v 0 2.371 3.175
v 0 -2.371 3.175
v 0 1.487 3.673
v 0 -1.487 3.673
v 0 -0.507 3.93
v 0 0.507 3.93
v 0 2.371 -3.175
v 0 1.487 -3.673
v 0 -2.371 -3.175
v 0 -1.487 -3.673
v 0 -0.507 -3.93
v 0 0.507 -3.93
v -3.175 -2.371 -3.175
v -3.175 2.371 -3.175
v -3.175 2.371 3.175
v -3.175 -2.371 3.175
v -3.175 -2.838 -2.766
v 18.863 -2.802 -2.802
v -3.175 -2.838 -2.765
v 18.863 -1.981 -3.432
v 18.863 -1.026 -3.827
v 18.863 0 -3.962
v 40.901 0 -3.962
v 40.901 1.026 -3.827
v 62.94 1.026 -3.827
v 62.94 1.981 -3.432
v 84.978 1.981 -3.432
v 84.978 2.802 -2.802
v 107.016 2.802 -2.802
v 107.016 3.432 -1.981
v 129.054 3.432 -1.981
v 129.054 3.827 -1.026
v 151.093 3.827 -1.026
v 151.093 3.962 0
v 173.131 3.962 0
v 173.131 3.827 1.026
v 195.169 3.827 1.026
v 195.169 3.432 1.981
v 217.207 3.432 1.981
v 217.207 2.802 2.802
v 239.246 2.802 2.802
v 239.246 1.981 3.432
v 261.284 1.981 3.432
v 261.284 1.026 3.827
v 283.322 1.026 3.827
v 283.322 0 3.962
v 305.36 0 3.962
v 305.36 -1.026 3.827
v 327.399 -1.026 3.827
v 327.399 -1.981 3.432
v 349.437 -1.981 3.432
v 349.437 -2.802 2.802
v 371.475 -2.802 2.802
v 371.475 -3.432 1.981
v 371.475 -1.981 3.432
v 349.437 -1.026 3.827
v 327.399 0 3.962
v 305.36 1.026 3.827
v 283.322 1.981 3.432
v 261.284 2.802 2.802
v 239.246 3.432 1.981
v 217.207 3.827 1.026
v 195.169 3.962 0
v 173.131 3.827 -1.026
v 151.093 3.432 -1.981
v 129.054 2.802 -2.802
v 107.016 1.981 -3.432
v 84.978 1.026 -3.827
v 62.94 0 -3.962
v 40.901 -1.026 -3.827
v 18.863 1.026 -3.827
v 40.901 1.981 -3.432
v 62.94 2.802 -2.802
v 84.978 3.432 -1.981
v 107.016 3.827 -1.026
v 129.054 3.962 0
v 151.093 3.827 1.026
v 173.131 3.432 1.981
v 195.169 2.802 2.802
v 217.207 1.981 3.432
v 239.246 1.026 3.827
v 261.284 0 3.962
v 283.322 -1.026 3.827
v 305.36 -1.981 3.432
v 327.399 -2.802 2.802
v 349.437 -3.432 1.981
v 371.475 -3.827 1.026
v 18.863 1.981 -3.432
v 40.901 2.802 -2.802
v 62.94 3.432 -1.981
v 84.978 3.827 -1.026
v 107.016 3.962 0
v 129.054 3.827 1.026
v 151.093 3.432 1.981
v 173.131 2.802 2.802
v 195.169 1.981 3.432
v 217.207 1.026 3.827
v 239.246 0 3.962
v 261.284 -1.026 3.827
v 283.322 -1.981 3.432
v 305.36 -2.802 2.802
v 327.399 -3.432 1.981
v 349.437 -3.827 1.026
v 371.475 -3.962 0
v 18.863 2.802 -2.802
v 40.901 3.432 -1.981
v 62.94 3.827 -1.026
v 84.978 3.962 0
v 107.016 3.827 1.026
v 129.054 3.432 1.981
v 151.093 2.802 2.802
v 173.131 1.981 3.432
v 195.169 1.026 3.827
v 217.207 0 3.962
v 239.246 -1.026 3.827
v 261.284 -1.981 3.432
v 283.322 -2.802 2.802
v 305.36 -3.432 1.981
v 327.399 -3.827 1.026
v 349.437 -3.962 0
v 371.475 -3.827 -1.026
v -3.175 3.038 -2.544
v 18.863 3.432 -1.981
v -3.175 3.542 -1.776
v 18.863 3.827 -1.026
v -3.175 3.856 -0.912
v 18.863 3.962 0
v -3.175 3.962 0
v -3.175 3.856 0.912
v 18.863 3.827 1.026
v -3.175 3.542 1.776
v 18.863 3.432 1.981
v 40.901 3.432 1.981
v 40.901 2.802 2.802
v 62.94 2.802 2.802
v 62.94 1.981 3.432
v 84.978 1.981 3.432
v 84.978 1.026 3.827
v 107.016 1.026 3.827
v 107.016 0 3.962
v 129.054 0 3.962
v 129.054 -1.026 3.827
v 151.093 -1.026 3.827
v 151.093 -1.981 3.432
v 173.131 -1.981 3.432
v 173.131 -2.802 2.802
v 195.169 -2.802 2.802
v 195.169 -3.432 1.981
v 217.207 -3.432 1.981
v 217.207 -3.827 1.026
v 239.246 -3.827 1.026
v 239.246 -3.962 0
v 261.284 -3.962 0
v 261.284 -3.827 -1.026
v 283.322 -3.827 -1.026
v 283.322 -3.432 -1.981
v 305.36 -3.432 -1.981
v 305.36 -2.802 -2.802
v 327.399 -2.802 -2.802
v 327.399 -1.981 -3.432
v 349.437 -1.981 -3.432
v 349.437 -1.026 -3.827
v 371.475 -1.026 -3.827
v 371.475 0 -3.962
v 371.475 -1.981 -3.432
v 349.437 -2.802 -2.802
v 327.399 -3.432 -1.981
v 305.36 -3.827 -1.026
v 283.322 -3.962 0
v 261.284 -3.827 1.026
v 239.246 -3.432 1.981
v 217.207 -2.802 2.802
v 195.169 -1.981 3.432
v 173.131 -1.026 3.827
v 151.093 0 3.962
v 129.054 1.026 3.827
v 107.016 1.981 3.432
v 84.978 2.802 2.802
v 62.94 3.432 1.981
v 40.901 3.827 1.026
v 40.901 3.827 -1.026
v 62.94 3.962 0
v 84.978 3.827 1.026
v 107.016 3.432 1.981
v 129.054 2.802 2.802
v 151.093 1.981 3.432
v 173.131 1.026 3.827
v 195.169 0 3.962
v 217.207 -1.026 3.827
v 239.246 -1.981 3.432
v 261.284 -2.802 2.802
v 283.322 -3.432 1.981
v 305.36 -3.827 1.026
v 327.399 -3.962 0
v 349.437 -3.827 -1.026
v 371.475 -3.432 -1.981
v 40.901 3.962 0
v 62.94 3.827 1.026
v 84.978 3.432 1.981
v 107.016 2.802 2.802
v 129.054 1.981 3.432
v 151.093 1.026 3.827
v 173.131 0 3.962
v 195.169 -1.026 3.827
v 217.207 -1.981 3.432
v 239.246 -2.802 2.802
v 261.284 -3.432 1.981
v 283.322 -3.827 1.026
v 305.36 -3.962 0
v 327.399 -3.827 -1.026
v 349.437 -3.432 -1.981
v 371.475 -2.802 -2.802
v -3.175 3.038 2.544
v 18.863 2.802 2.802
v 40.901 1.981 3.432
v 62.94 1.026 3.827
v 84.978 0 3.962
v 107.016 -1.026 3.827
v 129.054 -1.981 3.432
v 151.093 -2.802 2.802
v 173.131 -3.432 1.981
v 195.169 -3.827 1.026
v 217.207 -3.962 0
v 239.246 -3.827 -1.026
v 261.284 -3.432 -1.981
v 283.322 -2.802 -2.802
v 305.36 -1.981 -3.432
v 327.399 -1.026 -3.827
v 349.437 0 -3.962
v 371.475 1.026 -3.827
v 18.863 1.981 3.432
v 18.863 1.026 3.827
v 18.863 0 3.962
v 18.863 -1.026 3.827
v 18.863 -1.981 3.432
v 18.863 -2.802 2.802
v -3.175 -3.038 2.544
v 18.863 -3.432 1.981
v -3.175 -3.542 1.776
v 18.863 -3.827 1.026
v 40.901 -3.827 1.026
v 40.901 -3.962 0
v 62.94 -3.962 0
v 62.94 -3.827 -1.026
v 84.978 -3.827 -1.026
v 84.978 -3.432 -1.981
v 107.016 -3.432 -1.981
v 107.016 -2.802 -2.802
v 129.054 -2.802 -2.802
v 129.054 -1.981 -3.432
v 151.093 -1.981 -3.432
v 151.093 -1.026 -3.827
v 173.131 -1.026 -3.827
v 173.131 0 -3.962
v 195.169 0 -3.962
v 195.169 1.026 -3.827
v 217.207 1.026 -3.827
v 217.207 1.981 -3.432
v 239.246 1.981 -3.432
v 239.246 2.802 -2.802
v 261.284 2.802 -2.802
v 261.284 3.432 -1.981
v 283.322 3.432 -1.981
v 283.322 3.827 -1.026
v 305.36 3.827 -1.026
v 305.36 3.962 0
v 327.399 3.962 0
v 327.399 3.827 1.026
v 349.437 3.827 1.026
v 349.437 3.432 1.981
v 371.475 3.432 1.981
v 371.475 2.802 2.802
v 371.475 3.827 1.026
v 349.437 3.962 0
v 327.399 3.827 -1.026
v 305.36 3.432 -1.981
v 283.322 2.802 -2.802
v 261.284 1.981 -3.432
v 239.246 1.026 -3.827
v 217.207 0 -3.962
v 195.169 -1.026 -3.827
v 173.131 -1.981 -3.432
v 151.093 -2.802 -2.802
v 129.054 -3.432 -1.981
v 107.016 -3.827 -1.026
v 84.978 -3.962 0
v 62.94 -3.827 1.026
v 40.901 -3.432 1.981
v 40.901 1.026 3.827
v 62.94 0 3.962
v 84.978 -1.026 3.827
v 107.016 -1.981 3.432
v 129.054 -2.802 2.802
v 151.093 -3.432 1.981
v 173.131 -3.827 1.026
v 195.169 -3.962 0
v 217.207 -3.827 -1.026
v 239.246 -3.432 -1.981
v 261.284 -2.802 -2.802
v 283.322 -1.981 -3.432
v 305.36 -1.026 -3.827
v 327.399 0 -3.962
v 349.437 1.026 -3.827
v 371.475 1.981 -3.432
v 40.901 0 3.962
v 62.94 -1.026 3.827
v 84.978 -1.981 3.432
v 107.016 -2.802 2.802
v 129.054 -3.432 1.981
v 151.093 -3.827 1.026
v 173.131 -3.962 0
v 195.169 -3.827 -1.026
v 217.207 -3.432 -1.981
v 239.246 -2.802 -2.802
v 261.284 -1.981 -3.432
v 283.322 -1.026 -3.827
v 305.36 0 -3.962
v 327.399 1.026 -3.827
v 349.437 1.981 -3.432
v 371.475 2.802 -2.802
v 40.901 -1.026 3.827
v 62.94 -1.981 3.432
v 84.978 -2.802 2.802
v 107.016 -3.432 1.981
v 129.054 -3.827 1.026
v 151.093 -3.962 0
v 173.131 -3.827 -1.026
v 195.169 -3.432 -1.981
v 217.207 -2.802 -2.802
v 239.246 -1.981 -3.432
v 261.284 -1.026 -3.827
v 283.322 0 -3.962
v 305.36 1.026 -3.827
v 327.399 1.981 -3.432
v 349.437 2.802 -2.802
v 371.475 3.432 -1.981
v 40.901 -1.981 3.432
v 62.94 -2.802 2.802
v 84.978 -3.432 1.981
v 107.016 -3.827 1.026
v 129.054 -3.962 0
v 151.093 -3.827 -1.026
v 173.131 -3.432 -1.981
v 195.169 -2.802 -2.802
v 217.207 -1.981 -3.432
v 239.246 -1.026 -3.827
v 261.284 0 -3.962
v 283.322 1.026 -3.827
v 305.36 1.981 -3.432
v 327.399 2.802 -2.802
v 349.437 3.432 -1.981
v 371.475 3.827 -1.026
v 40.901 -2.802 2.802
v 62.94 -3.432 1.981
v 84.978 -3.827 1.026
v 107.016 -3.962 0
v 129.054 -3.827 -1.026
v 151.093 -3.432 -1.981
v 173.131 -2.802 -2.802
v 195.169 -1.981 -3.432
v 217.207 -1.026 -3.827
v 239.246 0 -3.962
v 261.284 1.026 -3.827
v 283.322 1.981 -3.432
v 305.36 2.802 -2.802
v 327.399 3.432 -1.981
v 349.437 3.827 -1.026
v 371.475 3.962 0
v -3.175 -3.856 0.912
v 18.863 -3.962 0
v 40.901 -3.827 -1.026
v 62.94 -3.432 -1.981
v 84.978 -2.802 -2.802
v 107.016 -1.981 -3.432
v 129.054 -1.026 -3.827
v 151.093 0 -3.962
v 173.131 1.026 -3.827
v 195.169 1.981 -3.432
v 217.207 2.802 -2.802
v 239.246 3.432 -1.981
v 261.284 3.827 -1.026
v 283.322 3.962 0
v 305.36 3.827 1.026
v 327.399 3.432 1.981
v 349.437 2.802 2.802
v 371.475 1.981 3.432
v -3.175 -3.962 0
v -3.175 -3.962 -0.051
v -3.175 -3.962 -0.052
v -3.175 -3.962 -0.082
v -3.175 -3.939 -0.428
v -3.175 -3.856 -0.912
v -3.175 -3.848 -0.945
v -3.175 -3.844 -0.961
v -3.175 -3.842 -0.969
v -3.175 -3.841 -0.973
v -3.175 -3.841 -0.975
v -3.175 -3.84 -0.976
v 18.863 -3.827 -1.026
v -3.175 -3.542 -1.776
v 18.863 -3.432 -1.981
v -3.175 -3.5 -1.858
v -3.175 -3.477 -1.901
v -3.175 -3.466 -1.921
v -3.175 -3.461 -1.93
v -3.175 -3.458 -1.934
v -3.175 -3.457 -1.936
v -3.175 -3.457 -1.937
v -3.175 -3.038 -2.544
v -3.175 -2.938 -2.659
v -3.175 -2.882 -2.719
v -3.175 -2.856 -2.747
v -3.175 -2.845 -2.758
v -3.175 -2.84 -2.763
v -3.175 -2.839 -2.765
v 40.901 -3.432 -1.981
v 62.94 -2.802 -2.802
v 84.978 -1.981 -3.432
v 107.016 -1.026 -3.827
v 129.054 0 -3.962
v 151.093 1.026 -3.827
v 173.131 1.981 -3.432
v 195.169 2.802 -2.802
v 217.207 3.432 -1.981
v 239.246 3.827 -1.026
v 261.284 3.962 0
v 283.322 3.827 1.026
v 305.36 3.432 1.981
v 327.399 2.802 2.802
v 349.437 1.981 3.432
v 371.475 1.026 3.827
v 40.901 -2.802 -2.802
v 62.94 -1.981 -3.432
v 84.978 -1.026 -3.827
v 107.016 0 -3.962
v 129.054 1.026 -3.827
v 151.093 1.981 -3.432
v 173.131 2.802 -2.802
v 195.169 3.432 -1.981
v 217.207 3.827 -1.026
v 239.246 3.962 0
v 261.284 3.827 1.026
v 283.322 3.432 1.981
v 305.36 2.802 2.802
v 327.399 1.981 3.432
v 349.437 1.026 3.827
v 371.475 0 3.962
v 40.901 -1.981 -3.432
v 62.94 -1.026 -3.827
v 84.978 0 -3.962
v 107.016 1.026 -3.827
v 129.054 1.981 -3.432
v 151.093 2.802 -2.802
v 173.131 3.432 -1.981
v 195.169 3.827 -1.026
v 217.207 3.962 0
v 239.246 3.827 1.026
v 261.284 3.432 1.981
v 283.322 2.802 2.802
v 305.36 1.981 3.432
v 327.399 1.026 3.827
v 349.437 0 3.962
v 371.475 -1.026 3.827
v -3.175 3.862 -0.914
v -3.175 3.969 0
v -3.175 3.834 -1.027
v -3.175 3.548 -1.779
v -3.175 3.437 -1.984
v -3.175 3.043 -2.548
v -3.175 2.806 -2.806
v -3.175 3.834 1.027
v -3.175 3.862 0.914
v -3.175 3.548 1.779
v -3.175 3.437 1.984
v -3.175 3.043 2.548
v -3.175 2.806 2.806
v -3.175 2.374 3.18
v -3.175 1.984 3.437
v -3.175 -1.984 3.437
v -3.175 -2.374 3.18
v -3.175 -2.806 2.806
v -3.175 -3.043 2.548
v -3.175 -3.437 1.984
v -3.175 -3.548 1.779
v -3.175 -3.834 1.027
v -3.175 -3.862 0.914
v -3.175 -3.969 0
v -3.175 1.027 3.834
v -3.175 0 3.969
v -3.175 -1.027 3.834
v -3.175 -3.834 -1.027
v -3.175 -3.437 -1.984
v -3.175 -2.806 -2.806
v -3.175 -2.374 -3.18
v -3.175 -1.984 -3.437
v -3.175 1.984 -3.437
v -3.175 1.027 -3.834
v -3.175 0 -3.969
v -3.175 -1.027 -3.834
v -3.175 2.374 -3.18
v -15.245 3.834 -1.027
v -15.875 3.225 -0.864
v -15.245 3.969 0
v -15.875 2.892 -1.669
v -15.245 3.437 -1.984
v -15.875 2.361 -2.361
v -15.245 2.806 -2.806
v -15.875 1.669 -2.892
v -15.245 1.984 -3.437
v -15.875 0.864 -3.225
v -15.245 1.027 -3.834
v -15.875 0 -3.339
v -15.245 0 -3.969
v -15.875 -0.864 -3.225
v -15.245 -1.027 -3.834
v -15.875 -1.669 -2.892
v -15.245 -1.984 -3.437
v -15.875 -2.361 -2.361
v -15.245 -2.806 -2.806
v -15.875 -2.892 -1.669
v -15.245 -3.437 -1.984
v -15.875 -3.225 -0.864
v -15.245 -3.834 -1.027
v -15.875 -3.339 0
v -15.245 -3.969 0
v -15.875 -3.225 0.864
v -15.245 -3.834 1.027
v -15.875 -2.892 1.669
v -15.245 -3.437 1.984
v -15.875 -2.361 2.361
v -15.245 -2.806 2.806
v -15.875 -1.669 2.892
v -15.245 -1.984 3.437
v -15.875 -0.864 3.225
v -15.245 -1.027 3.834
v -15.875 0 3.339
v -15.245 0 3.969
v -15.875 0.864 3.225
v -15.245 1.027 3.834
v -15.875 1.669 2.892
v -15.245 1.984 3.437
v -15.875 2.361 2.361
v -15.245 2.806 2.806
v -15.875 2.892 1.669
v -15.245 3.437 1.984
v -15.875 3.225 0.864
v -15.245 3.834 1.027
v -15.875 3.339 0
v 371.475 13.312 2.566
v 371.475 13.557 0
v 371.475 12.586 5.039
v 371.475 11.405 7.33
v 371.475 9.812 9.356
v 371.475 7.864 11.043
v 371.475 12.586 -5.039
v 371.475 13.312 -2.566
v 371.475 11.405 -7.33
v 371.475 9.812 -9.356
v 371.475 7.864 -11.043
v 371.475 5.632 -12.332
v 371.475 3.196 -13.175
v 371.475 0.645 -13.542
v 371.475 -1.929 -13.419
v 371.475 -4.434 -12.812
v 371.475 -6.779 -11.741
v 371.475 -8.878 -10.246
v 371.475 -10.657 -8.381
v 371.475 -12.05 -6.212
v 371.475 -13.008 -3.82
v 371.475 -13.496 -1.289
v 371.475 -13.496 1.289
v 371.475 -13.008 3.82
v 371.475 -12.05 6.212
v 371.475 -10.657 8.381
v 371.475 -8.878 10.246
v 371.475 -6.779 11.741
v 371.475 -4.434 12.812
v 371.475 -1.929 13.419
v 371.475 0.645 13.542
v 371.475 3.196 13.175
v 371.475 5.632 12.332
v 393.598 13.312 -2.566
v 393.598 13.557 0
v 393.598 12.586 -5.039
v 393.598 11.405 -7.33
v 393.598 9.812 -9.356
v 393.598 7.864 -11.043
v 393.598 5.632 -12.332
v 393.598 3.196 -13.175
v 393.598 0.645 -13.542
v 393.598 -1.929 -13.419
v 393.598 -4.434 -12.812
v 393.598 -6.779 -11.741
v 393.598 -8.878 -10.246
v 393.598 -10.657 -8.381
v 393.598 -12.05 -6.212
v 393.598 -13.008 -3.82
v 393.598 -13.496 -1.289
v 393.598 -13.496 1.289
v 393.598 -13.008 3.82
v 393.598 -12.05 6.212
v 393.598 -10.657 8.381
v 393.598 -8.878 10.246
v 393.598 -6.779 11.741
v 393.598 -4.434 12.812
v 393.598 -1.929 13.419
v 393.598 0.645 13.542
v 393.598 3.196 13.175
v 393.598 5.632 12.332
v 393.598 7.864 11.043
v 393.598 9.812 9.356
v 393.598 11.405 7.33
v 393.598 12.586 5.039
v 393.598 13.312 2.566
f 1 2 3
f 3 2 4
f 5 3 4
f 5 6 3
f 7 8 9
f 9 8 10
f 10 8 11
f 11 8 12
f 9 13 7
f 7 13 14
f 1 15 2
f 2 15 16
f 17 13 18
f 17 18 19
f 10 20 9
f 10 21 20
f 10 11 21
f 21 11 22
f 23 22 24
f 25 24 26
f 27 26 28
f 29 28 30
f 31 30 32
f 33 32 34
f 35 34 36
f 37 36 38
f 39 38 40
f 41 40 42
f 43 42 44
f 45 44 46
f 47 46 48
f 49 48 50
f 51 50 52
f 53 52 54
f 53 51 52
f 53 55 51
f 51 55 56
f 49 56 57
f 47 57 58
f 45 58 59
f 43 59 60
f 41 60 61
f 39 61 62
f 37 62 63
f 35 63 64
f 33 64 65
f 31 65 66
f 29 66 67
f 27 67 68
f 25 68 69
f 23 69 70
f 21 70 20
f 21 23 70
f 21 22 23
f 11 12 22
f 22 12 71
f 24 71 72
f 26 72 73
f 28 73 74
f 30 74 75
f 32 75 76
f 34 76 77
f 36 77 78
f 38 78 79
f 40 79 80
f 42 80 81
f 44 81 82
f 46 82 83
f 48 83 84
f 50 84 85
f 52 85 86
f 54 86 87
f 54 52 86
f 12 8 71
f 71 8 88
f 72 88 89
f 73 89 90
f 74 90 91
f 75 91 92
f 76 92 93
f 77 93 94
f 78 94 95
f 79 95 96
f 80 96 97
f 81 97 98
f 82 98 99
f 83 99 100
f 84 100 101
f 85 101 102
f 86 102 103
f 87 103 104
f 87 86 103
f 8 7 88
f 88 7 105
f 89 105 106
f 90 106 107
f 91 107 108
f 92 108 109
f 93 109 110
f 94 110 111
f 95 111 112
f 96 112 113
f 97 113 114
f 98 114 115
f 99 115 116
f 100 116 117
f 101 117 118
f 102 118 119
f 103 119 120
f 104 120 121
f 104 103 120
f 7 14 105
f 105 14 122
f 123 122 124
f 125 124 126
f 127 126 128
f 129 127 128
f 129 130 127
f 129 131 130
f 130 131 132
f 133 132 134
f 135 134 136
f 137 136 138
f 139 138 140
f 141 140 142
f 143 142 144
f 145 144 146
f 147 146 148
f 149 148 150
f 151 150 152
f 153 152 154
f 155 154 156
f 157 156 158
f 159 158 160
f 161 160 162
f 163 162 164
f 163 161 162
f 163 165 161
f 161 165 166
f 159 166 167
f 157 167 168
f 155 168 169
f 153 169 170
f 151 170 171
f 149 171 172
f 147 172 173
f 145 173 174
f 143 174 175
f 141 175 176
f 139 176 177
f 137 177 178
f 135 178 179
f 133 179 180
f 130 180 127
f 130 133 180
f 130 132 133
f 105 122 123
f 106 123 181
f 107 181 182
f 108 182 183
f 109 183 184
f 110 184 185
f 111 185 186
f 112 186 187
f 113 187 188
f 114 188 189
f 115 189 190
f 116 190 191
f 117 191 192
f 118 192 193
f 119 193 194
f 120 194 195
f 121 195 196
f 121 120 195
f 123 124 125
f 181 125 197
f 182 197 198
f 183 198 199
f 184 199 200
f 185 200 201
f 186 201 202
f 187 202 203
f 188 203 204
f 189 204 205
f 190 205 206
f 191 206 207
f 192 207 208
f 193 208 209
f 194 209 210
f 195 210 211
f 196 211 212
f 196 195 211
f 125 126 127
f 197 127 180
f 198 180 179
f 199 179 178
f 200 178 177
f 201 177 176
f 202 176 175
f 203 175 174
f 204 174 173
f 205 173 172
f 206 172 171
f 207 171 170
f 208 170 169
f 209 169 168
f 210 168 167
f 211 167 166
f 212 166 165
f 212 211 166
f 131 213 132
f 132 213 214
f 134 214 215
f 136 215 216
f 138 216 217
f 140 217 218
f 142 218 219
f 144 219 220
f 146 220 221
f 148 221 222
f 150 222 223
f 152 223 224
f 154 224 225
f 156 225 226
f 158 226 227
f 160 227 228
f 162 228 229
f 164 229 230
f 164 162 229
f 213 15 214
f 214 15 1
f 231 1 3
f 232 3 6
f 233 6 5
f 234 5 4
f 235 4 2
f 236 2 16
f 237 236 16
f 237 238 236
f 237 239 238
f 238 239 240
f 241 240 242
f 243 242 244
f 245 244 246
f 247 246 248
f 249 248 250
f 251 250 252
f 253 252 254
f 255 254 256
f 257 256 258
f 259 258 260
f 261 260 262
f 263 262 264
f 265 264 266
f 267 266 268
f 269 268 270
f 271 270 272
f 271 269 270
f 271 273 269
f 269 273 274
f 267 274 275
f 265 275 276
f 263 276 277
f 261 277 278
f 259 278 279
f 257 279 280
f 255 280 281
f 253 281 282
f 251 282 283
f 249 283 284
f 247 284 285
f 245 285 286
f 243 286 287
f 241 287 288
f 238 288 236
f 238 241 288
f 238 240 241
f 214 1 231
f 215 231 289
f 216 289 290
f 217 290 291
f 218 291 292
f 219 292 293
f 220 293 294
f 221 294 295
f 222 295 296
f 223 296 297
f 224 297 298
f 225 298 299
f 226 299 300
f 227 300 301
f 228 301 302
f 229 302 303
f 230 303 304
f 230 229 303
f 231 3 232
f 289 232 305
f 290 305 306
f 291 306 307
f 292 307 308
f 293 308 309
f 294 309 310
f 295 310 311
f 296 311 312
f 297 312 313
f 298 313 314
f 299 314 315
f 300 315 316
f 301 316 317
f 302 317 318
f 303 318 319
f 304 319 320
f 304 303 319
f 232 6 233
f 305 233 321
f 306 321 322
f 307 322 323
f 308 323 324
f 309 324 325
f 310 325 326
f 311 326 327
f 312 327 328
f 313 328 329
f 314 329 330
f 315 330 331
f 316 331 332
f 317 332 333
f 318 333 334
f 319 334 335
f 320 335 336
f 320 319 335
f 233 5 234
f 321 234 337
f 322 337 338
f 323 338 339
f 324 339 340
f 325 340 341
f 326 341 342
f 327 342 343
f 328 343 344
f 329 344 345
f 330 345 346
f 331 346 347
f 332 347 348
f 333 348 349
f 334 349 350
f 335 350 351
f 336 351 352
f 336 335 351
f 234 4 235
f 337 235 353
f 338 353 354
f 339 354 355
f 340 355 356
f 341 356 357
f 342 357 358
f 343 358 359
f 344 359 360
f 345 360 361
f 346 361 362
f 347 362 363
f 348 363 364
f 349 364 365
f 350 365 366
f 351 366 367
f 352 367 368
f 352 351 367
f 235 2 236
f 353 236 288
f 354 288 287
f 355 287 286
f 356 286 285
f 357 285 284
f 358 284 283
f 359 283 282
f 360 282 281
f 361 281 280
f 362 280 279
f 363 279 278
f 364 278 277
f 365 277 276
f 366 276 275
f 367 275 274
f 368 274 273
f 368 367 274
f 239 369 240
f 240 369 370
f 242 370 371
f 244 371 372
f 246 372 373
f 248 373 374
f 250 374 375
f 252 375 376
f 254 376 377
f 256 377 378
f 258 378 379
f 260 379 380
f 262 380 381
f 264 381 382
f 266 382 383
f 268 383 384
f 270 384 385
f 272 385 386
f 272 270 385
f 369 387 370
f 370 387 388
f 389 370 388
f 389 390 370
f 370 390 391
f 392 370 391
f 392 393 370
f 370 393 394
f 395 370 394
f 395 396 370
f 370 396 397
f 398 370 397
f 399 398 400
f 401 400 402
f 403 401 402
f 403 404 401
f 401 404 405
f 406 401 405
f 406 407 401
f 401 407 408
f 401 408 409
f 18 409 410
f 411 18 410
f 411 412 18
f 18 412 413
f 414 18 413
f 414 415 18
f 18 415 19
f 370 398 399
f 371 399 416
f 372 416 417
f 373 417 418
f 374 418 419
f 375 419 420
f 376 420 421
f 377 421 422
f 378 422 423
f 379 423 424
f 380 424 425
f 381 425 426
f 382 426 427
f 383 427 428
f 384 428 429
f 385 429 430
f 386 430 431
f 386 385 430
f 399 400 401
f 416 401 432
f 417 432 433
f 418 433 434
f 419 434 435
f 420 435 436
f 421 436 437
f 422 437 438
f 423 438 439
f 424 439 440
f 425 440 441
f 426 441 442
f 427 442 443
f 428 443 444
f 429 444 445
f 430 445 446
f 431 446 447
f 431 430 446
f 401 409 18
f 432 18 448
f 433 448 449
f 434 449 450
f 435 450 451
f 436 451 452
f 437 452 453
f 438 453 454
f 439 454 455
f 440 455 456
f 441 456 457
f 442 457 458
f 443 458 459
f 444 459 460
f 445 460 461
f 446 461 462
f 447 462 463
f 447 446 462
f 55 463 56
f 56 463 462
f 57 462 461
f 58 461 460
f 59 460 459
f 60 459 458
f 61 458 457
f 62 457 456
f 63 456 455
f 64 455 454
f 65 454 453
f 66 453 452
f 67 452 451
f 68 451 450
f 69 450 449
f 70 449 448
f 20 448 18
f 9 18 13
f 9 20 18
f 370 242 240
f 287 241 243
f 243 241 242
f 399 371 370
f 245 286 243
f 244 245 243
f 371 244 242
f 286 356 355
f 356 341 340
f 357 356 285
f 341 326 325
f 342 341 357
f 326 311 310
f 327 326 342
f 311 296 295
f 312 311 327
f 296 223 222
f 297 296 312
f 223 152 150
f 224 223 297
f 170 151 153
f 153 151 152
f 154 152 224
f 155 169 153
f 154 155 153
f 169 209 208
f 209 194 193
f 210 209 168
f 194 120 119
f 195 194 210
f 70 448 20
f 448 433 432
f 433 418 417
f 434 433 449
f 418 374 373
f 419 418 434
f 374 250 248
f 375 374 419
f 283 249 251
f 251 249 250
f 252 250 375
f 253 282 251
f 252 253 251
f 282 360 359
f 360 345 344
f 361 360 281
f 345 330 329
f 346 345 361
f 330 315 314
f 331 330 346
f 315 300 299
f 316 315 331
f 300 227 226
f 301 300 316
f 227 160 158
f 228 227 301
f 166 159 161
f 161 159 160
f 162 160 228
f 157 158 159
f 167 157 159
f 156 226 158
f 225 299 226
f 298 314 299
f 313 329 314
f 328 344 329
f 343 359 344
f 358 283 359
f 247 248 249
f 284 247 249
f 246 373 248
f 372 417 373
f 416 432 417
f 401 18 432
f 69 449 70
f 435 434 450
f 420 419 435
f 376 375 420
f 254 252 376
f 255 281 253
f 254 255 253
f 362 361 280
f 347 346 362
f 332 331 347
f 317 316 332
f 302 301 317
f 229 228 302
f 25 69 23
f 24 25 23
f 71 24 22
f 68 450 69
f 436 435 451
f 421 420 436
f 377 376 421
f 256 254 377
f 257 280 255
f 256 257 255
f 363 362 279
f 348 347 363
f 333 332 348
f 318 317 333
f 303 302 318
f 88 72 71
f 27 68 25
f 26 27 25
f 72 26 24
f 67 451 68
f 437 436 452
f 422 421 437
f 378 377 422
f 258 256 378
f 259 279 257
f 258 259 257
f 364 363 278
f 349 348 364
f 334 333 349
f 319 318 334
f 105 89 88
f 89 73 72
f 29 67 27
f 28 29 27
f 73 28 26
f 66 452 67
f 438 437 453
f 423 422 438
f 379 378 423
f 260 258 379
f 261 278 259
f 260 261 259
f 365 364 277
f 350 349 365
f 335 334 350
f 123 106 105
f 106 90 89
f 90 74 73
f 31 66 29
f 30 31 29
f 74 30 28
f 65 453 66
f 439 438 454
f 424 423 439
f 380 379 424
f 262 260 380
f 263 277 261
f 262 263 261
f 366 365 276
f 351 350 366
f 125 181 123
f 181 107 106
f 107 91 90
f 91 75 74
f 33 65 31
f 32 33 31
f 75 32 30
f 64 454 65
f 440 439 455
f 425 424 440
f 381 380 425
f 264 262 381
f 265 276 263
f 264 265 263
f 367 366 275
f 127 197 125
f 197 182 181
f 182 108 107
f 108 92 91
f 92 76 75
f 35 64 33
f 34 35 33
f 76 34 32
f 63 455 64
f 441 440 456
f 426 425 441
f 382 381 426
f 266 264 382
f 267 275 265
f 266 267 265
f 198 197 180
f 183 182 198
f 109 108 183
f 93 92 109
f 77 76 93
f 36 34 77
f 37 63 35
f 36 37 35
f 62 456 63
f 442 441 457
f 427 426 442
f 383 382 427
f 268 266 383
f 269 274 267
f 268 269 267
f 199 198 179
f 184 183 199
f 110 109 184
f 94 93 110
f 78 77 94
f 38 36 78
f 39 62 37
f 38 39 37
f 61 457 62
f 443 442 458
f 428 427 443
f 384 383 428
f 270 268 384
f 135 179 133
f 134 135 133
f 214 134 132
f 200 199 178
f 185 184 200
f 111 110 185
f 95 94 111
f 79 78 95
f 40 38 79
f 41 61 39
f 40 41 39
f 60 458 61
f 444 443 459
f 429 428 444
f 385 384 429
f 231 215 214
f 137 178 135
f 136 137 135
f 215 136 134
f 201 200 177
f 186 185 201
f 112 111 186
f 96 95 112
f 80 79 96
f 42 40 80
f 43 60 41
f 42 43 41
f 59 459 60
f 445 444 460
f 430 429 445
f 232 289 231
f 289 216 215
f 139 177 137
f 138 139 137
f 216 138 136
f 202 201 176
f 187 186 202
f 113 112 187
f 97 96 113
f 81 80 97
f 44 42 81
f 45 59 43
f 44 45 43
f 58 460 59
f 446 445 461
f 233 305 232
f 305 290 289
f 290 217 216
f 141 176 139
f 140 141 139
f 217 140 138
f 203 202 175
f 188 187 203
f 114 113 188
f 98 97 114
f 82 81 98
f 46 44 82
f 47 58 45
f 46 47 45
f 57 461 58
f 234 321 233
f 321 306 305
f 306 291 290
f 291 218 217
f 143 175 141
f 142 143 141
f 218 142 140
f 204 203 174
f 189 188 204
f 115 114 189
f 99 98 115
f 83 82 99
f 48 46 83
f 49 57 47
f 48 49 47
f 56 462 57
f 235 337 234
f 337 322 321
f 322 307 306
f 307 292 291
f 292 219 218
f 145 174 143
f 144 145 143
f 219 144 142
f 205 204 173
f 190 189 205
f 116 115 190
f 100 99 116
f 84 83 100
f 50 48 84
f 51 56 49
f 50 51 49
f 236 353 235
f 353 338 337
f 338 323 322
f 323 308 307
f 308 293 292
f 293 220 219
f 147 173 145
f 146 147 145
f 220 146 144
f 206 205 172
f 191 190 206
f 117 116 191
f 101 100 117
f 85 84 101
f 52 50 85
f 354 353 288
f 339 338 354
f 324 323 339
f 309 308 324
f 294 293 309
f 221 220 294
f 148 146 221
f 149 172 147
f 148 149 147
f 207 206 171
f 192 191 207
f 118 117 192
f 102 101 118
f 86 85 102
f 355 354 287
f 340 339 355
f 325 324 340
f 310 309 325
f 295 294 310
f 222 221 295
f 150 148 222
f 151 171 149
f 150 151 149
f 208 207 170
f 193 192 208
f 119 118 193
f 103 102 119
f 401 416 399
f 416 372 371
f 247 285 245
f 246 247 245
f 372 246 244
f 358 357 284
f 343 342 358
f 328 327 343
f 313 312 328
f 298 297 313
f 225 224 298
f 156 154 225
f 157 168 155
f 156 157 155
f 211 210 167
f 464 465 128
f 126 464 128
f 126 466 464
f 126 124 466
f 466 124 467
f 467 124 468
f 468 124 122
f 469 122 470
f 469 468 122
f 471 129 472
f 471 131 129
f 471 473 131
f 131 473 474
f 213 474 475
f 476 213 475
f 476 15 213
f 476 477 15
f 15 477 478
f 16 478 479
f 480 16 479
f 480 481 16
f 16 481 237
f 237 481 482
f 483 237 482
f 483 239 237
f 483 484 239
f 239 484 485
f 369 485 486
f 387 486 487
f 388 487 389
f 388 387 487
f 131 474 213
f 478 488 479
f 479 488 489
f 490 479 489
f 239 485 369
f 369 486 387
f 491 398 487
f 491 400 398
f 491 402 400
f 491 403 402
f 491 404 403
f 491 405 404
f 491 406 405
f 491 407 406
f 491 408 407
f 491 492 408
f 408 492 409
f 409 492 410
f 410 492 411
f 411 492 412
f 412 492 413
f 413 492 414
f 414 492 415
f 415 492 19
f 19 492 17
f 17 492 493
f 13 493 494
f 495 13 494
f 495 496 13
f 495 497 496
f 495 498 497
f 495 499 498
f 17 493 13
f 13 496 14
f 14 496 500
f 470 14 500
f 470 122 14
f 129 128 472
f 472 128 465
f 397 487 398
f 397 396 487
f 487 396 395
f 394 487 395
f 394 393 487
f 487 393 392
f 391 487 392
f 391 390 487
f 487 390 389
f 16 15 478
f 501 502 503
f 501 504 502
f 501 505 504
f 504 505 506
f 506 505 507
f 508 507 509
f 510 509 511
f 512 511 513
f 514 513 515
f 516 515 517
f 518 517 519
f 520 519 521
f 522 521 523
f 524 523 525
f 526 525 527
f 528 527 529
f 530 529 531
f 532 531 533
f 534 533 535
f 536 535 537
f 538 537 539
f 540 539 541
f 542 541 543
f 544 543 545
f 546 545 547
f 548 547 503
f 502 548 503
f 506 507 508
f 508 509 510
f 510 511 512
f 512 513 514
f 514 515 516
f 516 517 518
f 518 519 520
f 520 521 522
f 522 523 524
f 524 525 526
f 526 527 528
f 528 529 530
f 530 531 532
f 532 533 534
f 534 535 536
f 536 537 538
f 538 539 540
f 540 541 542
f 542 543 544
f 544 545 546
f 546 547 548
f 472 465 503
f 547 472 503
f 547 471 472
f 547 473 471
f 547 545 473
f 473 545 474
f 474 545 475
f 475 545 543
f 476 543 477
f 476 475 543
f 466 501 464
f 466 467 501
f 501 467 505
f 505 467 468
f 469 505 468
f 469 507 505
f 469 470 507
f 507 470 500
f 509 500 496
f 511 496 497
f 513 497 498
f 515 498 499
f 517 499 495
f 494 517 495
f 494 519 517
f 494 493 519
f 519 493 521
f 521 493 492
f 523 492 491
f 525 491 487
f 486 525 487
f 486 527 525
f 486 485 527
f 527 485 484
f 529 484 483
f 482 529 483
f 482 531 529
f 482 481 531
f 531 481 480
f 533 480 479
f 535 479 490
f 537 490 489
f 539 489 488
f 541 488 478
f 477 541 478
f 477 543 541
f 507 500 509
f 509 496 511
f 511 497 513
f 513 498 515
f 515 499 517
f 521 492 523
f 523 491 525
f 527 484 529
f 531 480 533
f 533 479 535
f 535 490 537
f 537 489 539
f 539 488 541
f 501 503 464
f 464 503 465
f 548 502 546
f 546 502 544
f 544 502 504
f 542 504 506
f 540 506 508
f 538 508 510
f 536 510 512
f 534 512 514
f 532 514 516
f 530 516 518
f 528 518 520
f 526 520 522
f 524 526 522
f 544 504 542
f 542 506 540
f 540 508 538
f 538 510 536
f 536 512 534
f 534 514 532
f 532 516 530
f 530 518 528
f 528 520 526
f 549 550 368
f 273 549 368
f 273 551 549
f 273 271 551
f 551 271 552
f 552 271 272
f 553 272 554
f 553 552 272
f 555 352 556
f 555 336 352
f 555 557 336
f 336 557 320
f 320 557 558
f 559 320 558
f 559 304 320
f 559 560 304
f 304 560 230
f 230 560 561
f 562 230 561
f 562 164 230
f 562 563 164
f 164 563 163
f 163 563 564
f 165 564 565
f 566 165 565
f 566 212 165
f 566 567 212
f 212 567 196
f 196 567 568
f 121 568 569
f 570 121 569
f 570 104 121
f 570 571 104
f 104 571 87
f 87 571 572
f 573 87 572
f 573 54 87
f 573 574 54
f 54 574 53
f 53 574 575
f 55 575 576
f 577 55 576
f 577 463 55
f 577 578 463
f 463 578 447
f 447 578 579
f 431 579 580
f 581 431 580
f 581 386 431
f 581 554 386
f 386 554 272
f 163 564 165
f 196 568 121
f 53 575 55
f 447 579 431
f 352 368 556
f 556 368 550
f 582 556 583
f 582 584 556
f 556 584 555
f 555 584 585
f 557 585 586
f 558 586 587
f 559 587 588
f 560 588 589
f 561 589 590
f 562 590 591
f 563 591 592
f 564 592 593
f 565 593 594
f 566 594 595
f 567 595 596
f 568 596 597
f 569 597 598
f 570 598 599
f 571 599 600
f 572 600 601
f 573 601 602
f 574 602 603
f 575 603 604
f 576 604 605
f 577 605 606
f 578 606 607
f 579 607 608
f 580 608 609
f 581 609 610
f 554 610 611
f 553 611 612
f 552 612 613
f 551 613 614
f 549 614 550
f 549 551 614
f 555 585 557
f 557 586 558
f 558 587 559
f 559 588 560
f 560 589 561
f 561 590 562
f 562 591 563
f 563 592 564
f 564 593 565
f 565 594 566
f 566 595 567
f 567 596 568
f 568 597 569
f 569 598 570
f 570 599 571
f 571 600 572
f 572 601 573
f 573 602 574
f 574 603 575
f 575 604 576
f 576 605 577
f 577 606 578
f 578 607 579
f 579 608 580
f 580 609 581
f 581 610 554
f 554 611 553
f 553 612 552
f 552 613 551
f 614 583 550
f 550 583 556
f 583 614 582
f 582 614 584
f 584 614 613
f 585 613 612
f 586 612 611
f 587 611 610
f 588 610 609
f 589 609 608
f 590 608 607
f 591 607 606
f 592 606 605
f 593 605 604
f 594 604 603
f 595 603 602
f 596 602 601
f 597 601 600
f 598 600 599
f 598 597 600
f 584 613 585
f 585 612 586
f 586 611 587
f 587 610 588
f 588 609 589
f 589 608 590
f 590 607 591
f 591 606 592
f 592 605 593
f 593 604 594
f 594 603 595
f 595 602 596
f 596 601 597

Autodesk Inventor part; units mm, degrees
sketch "Sketch_1" plane through (0, 0, 0) normal (0, 0, 1) x (1, 0, 0)
  line L0 (393.5984, 0) -> (-3.175, 0)
  line L1 (-3.175, 0) -> (-3.175, 3.9624)
  line L2 (-3.175, 3.9624) -> (371.475, 3.9624)
  line L3 (371.475, 3.9624) -> (371.475, 13.5572)
  line L4 (371.475, 13.5572) -> (393.5984, 13.5572)
  line L5 (393.5984, 13.5572) -> (393.5984, 0)
  line L6 (393.5984, 0) -> (-3.175, 0)
revolve "Revolution1" add sketch "Sketch_1" angle 360 about axis through (393.5984, 0, 0) along (1, 0, 0)
sketch "Sketch_3" plane through (0, 0, 0) normal (0, 0, 1) x (1, 0, 0)
  line L0 (-3.175, 0) -> (-15.875, 0)
  line L1 (-15.875, 0) -> (-15.875, 3.3388)
  line L2 (-15.875, 3.3388) -> (-15.2451, 3.9688)
  line L3 (-15.2451, 3.9688) -> (-3.175, 3.9688)
  line L4 (-3.175, 3.9688) -> (-3.175, 0)
  line L5 (-3.175, 0) -> (-15.875, 0)
revolve "Revolution2" add sketch "Sketch_3" angle 360 about axis through (-3.175, 0, 0) along (1, 0, 0)
thread "Thread1" size "5/16-20 UN" class "3A" standard "ANSI Unified Screw Threads" full length
sketch "Sketch_10" plane through (-3.175, 0, 0) normal (1, 0, 0) x (0, 0, -1)
  line L0 (-7.9248, 7.9248) -> (-7.9248, -7.9248)
  line L1 (-7.9248, -7.9248) -> (7.9248, -7.9248)
  line L2 (7.9248, -7.9248) -> (7.9248, 7.9248)
  line L3 (7.9248, 7.9248) -> (-7.9248, 7.9248)
  line L4 (-3.175, 3.9624) -> (-3.175, -3.9624)
  line L5 (-3.175, -3.9624) -> (3.175, -3.9624)
  line L6 (3.175, -3.9624) -> (3.175, 3.9624)
  line L7 (3.175, 3.9624) -> (-3.175, 3.9624)
extrude "Extrusion1" cut sketch "Sketch_10" along normal blind 3.175
ref_plane "rod_cp_XY" through (0, 0, 0) normal (1, 0, 0) x (0, 0, -1)
ref_plane "rod_cp_YZ" through (0, 0, 0) normal (0, 0, -1) x (0, 1, 0)
ref_plane "rod_cp_ZX" through (0, 0, 0) normal (0, 1, 0) x (1, 0, 0)
ref_plane "to_rod_clevis_XY" through (-15.875, 0, 0) normal (1, 0, 0) x (0, 0, -1)
ref_plane "to_rod_clevis_YZ" through (-15.875, 0, 0) normal (0, 0, -1) x (0, 1, 0)
ref_plane "to_rod_clevis_ZX" through (-15.875, 0, 0) normal (0, 1, 0) x (1, 0, 0)
ref_plane "rl2_XY" through (-3.175, 0, 0) normal (1, 0, 0) x (0, 0, -1)
ref_plane "rl2_YZ" through (-3.175, 0, 0) normal (0, 0, -1) x (0, 1, 0)
ref_plane "rl2_ZX" through (-3.175, 0, 0) normal (0, 1, 0) x (1, 0, 0)
ref_plane "rl1_XY" through (-15.875, 0, 0) normal (1, 0, 0) x (0, 0, -1)
ref_plane "rl1_YZ" through (-15.875, 0, 0) normal (0, 0, -1) x (0, 1, 0)
ref_plane "rl1_ZX" through (-15.875, 0, 0) normal (0, 1, 0) x (1, 0, 0)
ref_plane "thd1_XY" through (-15.875, 3.9688, 0) normal (1, 0, 0) x (0, 0, -1)
ref_plane "thd1_YZ" through (-15.875, 3.9688, 0) normal (0, 0, -1) x (0, 1, 0)
ref_plane "thd1_ZX" through (-15.875, 3.9688, 0) normal (0, 1, 0) x (1, 0, 0)
ref_plane "thd2_XY" through (-15.875, -3.9688, 0) normal (1, 0, 0) x (0, 0, -1)
ref_plane "thd2_YZ" through (-15.875, -3.9688, 0) normal (0, 0, -1) x (0, 1, 0)
ref_plane "thd2_ZX" through (-15.875, -3.9688, 0) normal (0, 1, 0) x (1, 0, 0)
ref_plane "dia1_XY" through (-3.175, 3.9624, 0) normal (1, 0, 0) x (0, 0, -1)
ref_plane "dia1_YZ" through (-3.175, 3.9624, 0) normal (0, 0, -1) x (0, 1, 0)
ref_plane "dia1_ZX" through (-3.175, 3.9624, 0) normal (0, 1, 0) x (1, 0, 0)
ref_plane "dia2_XY" through (-3.175, -3.9624, 0) normal (1, 0, 0) x (0, 0, -1)
ref_plane "dia2_YZ" through (-3.175, -3.9624, 0) normal (0, 0, -1) x (0, 1, 0)
ref_plane "dia2_ZX" through (-3.175, -3.9624, 0) normal (0, 1, 0) x (1, 0, 0)
ref_plane "wf1_XY" through (-3.175, 0, 0) normal (1, 0, 0) x (0, 0, -1)
ref_plane "wf1_YZ" through (-3.175, 0, 0) normal (0, 0, -1) x (0, 1, 0)
ref_plane "wf1_ZX" through (-3.175, 0, 0) normal (0, 1, 0) x (1, 0, 0)
ref_plane "wf2_XY" through (0, 0, 0) normal (1, 0, 0) x (0, 0, -1)
ref_plane "wf2_YZ" through (0, 0, 0) normal (0, 0, -1) x (0, 1, 0)
ref_plane "wf2_ZX" through (0, 0, 0) normal (0, 1, 0) x (1, 0, 0)
ref_plane "hh1_XY" through (421.3606, 0, 0) normal (0, 0, 1) x (1, 0, 0)
ref_plane "hh1_YZ" through (421.3606, 0, 0) normal (1, 0, 0) x (0, 1, 0)
ref_plane "hh1_ZX" through (421.3606, 0, 0) normal (0, 1, 0) x (0, 0, 1)
ref_plane "hh2_XY" through (427.7614, 0, 0) normal (0, 0, 1) x (1, 0, 0)
ref_plane "hh2_YZ" through (427.7614, 0, 0) normal (1, 0, 0) x (0, 1, 0)
ref_plane "hh2_ZX" through (427.7614, 0, 0) normal (0, 1, 0) x (0, 0, 1)
ref_plane "dia12_XY" through (0, 0, 14.1351) normal (1, 0, 0) x (0, 0, -1)
ref_plane "dia12_YZ" through (0, 0, 14.1351) normal (0, 0, -1) x (0, 1, 0)
ref_plane "dia12_ZX" through (0, 0, 14.1351) normal (0, 1, 0) x (1, 0, 0)
ref_plane "dia22_XY" through (0, 0, -14.1351) normal (1, 0, 0) x (0, 0, -1)
ref_plane "dia22_YZ" through (0, 0, -14.1351) normal (0, 0, -1) x (0, 1, 0)
ref_plane "dia22_ZX" through (0, 0, -14.1351) normal (0, 1, 0) x (1, 0, 0)
ref_plane "wfw1_XY" through (-3.175, 0, -3.175) normal (0, 1, 0) x (1, 0, 0)
ref_plane "wfw1_YZ" through (-3.175, 0, -3.175) normal (1, 0, 0) x (0, 0, -1)
ref_plane "wfw1_ZX" through (-3.175, 0, -3.175) normal (0, 0, -1) x (0, 1, 0)
ref_plane "wfw2_XY" through (-3.175, 0, 3.175) normal (0, 1, 0) x (1, 0, 0)
ref_plane "wfw2_YZ" through (-3.175, 0, 3.175) normal (1, 0, 0) x (0, 0, -1)
ref_plane "wfw2_ZX" through (-3.175, 0, 3.175) normal (0, 0, -1) x (0, 1, 0)
properties part number "0913-DX0_rod"
